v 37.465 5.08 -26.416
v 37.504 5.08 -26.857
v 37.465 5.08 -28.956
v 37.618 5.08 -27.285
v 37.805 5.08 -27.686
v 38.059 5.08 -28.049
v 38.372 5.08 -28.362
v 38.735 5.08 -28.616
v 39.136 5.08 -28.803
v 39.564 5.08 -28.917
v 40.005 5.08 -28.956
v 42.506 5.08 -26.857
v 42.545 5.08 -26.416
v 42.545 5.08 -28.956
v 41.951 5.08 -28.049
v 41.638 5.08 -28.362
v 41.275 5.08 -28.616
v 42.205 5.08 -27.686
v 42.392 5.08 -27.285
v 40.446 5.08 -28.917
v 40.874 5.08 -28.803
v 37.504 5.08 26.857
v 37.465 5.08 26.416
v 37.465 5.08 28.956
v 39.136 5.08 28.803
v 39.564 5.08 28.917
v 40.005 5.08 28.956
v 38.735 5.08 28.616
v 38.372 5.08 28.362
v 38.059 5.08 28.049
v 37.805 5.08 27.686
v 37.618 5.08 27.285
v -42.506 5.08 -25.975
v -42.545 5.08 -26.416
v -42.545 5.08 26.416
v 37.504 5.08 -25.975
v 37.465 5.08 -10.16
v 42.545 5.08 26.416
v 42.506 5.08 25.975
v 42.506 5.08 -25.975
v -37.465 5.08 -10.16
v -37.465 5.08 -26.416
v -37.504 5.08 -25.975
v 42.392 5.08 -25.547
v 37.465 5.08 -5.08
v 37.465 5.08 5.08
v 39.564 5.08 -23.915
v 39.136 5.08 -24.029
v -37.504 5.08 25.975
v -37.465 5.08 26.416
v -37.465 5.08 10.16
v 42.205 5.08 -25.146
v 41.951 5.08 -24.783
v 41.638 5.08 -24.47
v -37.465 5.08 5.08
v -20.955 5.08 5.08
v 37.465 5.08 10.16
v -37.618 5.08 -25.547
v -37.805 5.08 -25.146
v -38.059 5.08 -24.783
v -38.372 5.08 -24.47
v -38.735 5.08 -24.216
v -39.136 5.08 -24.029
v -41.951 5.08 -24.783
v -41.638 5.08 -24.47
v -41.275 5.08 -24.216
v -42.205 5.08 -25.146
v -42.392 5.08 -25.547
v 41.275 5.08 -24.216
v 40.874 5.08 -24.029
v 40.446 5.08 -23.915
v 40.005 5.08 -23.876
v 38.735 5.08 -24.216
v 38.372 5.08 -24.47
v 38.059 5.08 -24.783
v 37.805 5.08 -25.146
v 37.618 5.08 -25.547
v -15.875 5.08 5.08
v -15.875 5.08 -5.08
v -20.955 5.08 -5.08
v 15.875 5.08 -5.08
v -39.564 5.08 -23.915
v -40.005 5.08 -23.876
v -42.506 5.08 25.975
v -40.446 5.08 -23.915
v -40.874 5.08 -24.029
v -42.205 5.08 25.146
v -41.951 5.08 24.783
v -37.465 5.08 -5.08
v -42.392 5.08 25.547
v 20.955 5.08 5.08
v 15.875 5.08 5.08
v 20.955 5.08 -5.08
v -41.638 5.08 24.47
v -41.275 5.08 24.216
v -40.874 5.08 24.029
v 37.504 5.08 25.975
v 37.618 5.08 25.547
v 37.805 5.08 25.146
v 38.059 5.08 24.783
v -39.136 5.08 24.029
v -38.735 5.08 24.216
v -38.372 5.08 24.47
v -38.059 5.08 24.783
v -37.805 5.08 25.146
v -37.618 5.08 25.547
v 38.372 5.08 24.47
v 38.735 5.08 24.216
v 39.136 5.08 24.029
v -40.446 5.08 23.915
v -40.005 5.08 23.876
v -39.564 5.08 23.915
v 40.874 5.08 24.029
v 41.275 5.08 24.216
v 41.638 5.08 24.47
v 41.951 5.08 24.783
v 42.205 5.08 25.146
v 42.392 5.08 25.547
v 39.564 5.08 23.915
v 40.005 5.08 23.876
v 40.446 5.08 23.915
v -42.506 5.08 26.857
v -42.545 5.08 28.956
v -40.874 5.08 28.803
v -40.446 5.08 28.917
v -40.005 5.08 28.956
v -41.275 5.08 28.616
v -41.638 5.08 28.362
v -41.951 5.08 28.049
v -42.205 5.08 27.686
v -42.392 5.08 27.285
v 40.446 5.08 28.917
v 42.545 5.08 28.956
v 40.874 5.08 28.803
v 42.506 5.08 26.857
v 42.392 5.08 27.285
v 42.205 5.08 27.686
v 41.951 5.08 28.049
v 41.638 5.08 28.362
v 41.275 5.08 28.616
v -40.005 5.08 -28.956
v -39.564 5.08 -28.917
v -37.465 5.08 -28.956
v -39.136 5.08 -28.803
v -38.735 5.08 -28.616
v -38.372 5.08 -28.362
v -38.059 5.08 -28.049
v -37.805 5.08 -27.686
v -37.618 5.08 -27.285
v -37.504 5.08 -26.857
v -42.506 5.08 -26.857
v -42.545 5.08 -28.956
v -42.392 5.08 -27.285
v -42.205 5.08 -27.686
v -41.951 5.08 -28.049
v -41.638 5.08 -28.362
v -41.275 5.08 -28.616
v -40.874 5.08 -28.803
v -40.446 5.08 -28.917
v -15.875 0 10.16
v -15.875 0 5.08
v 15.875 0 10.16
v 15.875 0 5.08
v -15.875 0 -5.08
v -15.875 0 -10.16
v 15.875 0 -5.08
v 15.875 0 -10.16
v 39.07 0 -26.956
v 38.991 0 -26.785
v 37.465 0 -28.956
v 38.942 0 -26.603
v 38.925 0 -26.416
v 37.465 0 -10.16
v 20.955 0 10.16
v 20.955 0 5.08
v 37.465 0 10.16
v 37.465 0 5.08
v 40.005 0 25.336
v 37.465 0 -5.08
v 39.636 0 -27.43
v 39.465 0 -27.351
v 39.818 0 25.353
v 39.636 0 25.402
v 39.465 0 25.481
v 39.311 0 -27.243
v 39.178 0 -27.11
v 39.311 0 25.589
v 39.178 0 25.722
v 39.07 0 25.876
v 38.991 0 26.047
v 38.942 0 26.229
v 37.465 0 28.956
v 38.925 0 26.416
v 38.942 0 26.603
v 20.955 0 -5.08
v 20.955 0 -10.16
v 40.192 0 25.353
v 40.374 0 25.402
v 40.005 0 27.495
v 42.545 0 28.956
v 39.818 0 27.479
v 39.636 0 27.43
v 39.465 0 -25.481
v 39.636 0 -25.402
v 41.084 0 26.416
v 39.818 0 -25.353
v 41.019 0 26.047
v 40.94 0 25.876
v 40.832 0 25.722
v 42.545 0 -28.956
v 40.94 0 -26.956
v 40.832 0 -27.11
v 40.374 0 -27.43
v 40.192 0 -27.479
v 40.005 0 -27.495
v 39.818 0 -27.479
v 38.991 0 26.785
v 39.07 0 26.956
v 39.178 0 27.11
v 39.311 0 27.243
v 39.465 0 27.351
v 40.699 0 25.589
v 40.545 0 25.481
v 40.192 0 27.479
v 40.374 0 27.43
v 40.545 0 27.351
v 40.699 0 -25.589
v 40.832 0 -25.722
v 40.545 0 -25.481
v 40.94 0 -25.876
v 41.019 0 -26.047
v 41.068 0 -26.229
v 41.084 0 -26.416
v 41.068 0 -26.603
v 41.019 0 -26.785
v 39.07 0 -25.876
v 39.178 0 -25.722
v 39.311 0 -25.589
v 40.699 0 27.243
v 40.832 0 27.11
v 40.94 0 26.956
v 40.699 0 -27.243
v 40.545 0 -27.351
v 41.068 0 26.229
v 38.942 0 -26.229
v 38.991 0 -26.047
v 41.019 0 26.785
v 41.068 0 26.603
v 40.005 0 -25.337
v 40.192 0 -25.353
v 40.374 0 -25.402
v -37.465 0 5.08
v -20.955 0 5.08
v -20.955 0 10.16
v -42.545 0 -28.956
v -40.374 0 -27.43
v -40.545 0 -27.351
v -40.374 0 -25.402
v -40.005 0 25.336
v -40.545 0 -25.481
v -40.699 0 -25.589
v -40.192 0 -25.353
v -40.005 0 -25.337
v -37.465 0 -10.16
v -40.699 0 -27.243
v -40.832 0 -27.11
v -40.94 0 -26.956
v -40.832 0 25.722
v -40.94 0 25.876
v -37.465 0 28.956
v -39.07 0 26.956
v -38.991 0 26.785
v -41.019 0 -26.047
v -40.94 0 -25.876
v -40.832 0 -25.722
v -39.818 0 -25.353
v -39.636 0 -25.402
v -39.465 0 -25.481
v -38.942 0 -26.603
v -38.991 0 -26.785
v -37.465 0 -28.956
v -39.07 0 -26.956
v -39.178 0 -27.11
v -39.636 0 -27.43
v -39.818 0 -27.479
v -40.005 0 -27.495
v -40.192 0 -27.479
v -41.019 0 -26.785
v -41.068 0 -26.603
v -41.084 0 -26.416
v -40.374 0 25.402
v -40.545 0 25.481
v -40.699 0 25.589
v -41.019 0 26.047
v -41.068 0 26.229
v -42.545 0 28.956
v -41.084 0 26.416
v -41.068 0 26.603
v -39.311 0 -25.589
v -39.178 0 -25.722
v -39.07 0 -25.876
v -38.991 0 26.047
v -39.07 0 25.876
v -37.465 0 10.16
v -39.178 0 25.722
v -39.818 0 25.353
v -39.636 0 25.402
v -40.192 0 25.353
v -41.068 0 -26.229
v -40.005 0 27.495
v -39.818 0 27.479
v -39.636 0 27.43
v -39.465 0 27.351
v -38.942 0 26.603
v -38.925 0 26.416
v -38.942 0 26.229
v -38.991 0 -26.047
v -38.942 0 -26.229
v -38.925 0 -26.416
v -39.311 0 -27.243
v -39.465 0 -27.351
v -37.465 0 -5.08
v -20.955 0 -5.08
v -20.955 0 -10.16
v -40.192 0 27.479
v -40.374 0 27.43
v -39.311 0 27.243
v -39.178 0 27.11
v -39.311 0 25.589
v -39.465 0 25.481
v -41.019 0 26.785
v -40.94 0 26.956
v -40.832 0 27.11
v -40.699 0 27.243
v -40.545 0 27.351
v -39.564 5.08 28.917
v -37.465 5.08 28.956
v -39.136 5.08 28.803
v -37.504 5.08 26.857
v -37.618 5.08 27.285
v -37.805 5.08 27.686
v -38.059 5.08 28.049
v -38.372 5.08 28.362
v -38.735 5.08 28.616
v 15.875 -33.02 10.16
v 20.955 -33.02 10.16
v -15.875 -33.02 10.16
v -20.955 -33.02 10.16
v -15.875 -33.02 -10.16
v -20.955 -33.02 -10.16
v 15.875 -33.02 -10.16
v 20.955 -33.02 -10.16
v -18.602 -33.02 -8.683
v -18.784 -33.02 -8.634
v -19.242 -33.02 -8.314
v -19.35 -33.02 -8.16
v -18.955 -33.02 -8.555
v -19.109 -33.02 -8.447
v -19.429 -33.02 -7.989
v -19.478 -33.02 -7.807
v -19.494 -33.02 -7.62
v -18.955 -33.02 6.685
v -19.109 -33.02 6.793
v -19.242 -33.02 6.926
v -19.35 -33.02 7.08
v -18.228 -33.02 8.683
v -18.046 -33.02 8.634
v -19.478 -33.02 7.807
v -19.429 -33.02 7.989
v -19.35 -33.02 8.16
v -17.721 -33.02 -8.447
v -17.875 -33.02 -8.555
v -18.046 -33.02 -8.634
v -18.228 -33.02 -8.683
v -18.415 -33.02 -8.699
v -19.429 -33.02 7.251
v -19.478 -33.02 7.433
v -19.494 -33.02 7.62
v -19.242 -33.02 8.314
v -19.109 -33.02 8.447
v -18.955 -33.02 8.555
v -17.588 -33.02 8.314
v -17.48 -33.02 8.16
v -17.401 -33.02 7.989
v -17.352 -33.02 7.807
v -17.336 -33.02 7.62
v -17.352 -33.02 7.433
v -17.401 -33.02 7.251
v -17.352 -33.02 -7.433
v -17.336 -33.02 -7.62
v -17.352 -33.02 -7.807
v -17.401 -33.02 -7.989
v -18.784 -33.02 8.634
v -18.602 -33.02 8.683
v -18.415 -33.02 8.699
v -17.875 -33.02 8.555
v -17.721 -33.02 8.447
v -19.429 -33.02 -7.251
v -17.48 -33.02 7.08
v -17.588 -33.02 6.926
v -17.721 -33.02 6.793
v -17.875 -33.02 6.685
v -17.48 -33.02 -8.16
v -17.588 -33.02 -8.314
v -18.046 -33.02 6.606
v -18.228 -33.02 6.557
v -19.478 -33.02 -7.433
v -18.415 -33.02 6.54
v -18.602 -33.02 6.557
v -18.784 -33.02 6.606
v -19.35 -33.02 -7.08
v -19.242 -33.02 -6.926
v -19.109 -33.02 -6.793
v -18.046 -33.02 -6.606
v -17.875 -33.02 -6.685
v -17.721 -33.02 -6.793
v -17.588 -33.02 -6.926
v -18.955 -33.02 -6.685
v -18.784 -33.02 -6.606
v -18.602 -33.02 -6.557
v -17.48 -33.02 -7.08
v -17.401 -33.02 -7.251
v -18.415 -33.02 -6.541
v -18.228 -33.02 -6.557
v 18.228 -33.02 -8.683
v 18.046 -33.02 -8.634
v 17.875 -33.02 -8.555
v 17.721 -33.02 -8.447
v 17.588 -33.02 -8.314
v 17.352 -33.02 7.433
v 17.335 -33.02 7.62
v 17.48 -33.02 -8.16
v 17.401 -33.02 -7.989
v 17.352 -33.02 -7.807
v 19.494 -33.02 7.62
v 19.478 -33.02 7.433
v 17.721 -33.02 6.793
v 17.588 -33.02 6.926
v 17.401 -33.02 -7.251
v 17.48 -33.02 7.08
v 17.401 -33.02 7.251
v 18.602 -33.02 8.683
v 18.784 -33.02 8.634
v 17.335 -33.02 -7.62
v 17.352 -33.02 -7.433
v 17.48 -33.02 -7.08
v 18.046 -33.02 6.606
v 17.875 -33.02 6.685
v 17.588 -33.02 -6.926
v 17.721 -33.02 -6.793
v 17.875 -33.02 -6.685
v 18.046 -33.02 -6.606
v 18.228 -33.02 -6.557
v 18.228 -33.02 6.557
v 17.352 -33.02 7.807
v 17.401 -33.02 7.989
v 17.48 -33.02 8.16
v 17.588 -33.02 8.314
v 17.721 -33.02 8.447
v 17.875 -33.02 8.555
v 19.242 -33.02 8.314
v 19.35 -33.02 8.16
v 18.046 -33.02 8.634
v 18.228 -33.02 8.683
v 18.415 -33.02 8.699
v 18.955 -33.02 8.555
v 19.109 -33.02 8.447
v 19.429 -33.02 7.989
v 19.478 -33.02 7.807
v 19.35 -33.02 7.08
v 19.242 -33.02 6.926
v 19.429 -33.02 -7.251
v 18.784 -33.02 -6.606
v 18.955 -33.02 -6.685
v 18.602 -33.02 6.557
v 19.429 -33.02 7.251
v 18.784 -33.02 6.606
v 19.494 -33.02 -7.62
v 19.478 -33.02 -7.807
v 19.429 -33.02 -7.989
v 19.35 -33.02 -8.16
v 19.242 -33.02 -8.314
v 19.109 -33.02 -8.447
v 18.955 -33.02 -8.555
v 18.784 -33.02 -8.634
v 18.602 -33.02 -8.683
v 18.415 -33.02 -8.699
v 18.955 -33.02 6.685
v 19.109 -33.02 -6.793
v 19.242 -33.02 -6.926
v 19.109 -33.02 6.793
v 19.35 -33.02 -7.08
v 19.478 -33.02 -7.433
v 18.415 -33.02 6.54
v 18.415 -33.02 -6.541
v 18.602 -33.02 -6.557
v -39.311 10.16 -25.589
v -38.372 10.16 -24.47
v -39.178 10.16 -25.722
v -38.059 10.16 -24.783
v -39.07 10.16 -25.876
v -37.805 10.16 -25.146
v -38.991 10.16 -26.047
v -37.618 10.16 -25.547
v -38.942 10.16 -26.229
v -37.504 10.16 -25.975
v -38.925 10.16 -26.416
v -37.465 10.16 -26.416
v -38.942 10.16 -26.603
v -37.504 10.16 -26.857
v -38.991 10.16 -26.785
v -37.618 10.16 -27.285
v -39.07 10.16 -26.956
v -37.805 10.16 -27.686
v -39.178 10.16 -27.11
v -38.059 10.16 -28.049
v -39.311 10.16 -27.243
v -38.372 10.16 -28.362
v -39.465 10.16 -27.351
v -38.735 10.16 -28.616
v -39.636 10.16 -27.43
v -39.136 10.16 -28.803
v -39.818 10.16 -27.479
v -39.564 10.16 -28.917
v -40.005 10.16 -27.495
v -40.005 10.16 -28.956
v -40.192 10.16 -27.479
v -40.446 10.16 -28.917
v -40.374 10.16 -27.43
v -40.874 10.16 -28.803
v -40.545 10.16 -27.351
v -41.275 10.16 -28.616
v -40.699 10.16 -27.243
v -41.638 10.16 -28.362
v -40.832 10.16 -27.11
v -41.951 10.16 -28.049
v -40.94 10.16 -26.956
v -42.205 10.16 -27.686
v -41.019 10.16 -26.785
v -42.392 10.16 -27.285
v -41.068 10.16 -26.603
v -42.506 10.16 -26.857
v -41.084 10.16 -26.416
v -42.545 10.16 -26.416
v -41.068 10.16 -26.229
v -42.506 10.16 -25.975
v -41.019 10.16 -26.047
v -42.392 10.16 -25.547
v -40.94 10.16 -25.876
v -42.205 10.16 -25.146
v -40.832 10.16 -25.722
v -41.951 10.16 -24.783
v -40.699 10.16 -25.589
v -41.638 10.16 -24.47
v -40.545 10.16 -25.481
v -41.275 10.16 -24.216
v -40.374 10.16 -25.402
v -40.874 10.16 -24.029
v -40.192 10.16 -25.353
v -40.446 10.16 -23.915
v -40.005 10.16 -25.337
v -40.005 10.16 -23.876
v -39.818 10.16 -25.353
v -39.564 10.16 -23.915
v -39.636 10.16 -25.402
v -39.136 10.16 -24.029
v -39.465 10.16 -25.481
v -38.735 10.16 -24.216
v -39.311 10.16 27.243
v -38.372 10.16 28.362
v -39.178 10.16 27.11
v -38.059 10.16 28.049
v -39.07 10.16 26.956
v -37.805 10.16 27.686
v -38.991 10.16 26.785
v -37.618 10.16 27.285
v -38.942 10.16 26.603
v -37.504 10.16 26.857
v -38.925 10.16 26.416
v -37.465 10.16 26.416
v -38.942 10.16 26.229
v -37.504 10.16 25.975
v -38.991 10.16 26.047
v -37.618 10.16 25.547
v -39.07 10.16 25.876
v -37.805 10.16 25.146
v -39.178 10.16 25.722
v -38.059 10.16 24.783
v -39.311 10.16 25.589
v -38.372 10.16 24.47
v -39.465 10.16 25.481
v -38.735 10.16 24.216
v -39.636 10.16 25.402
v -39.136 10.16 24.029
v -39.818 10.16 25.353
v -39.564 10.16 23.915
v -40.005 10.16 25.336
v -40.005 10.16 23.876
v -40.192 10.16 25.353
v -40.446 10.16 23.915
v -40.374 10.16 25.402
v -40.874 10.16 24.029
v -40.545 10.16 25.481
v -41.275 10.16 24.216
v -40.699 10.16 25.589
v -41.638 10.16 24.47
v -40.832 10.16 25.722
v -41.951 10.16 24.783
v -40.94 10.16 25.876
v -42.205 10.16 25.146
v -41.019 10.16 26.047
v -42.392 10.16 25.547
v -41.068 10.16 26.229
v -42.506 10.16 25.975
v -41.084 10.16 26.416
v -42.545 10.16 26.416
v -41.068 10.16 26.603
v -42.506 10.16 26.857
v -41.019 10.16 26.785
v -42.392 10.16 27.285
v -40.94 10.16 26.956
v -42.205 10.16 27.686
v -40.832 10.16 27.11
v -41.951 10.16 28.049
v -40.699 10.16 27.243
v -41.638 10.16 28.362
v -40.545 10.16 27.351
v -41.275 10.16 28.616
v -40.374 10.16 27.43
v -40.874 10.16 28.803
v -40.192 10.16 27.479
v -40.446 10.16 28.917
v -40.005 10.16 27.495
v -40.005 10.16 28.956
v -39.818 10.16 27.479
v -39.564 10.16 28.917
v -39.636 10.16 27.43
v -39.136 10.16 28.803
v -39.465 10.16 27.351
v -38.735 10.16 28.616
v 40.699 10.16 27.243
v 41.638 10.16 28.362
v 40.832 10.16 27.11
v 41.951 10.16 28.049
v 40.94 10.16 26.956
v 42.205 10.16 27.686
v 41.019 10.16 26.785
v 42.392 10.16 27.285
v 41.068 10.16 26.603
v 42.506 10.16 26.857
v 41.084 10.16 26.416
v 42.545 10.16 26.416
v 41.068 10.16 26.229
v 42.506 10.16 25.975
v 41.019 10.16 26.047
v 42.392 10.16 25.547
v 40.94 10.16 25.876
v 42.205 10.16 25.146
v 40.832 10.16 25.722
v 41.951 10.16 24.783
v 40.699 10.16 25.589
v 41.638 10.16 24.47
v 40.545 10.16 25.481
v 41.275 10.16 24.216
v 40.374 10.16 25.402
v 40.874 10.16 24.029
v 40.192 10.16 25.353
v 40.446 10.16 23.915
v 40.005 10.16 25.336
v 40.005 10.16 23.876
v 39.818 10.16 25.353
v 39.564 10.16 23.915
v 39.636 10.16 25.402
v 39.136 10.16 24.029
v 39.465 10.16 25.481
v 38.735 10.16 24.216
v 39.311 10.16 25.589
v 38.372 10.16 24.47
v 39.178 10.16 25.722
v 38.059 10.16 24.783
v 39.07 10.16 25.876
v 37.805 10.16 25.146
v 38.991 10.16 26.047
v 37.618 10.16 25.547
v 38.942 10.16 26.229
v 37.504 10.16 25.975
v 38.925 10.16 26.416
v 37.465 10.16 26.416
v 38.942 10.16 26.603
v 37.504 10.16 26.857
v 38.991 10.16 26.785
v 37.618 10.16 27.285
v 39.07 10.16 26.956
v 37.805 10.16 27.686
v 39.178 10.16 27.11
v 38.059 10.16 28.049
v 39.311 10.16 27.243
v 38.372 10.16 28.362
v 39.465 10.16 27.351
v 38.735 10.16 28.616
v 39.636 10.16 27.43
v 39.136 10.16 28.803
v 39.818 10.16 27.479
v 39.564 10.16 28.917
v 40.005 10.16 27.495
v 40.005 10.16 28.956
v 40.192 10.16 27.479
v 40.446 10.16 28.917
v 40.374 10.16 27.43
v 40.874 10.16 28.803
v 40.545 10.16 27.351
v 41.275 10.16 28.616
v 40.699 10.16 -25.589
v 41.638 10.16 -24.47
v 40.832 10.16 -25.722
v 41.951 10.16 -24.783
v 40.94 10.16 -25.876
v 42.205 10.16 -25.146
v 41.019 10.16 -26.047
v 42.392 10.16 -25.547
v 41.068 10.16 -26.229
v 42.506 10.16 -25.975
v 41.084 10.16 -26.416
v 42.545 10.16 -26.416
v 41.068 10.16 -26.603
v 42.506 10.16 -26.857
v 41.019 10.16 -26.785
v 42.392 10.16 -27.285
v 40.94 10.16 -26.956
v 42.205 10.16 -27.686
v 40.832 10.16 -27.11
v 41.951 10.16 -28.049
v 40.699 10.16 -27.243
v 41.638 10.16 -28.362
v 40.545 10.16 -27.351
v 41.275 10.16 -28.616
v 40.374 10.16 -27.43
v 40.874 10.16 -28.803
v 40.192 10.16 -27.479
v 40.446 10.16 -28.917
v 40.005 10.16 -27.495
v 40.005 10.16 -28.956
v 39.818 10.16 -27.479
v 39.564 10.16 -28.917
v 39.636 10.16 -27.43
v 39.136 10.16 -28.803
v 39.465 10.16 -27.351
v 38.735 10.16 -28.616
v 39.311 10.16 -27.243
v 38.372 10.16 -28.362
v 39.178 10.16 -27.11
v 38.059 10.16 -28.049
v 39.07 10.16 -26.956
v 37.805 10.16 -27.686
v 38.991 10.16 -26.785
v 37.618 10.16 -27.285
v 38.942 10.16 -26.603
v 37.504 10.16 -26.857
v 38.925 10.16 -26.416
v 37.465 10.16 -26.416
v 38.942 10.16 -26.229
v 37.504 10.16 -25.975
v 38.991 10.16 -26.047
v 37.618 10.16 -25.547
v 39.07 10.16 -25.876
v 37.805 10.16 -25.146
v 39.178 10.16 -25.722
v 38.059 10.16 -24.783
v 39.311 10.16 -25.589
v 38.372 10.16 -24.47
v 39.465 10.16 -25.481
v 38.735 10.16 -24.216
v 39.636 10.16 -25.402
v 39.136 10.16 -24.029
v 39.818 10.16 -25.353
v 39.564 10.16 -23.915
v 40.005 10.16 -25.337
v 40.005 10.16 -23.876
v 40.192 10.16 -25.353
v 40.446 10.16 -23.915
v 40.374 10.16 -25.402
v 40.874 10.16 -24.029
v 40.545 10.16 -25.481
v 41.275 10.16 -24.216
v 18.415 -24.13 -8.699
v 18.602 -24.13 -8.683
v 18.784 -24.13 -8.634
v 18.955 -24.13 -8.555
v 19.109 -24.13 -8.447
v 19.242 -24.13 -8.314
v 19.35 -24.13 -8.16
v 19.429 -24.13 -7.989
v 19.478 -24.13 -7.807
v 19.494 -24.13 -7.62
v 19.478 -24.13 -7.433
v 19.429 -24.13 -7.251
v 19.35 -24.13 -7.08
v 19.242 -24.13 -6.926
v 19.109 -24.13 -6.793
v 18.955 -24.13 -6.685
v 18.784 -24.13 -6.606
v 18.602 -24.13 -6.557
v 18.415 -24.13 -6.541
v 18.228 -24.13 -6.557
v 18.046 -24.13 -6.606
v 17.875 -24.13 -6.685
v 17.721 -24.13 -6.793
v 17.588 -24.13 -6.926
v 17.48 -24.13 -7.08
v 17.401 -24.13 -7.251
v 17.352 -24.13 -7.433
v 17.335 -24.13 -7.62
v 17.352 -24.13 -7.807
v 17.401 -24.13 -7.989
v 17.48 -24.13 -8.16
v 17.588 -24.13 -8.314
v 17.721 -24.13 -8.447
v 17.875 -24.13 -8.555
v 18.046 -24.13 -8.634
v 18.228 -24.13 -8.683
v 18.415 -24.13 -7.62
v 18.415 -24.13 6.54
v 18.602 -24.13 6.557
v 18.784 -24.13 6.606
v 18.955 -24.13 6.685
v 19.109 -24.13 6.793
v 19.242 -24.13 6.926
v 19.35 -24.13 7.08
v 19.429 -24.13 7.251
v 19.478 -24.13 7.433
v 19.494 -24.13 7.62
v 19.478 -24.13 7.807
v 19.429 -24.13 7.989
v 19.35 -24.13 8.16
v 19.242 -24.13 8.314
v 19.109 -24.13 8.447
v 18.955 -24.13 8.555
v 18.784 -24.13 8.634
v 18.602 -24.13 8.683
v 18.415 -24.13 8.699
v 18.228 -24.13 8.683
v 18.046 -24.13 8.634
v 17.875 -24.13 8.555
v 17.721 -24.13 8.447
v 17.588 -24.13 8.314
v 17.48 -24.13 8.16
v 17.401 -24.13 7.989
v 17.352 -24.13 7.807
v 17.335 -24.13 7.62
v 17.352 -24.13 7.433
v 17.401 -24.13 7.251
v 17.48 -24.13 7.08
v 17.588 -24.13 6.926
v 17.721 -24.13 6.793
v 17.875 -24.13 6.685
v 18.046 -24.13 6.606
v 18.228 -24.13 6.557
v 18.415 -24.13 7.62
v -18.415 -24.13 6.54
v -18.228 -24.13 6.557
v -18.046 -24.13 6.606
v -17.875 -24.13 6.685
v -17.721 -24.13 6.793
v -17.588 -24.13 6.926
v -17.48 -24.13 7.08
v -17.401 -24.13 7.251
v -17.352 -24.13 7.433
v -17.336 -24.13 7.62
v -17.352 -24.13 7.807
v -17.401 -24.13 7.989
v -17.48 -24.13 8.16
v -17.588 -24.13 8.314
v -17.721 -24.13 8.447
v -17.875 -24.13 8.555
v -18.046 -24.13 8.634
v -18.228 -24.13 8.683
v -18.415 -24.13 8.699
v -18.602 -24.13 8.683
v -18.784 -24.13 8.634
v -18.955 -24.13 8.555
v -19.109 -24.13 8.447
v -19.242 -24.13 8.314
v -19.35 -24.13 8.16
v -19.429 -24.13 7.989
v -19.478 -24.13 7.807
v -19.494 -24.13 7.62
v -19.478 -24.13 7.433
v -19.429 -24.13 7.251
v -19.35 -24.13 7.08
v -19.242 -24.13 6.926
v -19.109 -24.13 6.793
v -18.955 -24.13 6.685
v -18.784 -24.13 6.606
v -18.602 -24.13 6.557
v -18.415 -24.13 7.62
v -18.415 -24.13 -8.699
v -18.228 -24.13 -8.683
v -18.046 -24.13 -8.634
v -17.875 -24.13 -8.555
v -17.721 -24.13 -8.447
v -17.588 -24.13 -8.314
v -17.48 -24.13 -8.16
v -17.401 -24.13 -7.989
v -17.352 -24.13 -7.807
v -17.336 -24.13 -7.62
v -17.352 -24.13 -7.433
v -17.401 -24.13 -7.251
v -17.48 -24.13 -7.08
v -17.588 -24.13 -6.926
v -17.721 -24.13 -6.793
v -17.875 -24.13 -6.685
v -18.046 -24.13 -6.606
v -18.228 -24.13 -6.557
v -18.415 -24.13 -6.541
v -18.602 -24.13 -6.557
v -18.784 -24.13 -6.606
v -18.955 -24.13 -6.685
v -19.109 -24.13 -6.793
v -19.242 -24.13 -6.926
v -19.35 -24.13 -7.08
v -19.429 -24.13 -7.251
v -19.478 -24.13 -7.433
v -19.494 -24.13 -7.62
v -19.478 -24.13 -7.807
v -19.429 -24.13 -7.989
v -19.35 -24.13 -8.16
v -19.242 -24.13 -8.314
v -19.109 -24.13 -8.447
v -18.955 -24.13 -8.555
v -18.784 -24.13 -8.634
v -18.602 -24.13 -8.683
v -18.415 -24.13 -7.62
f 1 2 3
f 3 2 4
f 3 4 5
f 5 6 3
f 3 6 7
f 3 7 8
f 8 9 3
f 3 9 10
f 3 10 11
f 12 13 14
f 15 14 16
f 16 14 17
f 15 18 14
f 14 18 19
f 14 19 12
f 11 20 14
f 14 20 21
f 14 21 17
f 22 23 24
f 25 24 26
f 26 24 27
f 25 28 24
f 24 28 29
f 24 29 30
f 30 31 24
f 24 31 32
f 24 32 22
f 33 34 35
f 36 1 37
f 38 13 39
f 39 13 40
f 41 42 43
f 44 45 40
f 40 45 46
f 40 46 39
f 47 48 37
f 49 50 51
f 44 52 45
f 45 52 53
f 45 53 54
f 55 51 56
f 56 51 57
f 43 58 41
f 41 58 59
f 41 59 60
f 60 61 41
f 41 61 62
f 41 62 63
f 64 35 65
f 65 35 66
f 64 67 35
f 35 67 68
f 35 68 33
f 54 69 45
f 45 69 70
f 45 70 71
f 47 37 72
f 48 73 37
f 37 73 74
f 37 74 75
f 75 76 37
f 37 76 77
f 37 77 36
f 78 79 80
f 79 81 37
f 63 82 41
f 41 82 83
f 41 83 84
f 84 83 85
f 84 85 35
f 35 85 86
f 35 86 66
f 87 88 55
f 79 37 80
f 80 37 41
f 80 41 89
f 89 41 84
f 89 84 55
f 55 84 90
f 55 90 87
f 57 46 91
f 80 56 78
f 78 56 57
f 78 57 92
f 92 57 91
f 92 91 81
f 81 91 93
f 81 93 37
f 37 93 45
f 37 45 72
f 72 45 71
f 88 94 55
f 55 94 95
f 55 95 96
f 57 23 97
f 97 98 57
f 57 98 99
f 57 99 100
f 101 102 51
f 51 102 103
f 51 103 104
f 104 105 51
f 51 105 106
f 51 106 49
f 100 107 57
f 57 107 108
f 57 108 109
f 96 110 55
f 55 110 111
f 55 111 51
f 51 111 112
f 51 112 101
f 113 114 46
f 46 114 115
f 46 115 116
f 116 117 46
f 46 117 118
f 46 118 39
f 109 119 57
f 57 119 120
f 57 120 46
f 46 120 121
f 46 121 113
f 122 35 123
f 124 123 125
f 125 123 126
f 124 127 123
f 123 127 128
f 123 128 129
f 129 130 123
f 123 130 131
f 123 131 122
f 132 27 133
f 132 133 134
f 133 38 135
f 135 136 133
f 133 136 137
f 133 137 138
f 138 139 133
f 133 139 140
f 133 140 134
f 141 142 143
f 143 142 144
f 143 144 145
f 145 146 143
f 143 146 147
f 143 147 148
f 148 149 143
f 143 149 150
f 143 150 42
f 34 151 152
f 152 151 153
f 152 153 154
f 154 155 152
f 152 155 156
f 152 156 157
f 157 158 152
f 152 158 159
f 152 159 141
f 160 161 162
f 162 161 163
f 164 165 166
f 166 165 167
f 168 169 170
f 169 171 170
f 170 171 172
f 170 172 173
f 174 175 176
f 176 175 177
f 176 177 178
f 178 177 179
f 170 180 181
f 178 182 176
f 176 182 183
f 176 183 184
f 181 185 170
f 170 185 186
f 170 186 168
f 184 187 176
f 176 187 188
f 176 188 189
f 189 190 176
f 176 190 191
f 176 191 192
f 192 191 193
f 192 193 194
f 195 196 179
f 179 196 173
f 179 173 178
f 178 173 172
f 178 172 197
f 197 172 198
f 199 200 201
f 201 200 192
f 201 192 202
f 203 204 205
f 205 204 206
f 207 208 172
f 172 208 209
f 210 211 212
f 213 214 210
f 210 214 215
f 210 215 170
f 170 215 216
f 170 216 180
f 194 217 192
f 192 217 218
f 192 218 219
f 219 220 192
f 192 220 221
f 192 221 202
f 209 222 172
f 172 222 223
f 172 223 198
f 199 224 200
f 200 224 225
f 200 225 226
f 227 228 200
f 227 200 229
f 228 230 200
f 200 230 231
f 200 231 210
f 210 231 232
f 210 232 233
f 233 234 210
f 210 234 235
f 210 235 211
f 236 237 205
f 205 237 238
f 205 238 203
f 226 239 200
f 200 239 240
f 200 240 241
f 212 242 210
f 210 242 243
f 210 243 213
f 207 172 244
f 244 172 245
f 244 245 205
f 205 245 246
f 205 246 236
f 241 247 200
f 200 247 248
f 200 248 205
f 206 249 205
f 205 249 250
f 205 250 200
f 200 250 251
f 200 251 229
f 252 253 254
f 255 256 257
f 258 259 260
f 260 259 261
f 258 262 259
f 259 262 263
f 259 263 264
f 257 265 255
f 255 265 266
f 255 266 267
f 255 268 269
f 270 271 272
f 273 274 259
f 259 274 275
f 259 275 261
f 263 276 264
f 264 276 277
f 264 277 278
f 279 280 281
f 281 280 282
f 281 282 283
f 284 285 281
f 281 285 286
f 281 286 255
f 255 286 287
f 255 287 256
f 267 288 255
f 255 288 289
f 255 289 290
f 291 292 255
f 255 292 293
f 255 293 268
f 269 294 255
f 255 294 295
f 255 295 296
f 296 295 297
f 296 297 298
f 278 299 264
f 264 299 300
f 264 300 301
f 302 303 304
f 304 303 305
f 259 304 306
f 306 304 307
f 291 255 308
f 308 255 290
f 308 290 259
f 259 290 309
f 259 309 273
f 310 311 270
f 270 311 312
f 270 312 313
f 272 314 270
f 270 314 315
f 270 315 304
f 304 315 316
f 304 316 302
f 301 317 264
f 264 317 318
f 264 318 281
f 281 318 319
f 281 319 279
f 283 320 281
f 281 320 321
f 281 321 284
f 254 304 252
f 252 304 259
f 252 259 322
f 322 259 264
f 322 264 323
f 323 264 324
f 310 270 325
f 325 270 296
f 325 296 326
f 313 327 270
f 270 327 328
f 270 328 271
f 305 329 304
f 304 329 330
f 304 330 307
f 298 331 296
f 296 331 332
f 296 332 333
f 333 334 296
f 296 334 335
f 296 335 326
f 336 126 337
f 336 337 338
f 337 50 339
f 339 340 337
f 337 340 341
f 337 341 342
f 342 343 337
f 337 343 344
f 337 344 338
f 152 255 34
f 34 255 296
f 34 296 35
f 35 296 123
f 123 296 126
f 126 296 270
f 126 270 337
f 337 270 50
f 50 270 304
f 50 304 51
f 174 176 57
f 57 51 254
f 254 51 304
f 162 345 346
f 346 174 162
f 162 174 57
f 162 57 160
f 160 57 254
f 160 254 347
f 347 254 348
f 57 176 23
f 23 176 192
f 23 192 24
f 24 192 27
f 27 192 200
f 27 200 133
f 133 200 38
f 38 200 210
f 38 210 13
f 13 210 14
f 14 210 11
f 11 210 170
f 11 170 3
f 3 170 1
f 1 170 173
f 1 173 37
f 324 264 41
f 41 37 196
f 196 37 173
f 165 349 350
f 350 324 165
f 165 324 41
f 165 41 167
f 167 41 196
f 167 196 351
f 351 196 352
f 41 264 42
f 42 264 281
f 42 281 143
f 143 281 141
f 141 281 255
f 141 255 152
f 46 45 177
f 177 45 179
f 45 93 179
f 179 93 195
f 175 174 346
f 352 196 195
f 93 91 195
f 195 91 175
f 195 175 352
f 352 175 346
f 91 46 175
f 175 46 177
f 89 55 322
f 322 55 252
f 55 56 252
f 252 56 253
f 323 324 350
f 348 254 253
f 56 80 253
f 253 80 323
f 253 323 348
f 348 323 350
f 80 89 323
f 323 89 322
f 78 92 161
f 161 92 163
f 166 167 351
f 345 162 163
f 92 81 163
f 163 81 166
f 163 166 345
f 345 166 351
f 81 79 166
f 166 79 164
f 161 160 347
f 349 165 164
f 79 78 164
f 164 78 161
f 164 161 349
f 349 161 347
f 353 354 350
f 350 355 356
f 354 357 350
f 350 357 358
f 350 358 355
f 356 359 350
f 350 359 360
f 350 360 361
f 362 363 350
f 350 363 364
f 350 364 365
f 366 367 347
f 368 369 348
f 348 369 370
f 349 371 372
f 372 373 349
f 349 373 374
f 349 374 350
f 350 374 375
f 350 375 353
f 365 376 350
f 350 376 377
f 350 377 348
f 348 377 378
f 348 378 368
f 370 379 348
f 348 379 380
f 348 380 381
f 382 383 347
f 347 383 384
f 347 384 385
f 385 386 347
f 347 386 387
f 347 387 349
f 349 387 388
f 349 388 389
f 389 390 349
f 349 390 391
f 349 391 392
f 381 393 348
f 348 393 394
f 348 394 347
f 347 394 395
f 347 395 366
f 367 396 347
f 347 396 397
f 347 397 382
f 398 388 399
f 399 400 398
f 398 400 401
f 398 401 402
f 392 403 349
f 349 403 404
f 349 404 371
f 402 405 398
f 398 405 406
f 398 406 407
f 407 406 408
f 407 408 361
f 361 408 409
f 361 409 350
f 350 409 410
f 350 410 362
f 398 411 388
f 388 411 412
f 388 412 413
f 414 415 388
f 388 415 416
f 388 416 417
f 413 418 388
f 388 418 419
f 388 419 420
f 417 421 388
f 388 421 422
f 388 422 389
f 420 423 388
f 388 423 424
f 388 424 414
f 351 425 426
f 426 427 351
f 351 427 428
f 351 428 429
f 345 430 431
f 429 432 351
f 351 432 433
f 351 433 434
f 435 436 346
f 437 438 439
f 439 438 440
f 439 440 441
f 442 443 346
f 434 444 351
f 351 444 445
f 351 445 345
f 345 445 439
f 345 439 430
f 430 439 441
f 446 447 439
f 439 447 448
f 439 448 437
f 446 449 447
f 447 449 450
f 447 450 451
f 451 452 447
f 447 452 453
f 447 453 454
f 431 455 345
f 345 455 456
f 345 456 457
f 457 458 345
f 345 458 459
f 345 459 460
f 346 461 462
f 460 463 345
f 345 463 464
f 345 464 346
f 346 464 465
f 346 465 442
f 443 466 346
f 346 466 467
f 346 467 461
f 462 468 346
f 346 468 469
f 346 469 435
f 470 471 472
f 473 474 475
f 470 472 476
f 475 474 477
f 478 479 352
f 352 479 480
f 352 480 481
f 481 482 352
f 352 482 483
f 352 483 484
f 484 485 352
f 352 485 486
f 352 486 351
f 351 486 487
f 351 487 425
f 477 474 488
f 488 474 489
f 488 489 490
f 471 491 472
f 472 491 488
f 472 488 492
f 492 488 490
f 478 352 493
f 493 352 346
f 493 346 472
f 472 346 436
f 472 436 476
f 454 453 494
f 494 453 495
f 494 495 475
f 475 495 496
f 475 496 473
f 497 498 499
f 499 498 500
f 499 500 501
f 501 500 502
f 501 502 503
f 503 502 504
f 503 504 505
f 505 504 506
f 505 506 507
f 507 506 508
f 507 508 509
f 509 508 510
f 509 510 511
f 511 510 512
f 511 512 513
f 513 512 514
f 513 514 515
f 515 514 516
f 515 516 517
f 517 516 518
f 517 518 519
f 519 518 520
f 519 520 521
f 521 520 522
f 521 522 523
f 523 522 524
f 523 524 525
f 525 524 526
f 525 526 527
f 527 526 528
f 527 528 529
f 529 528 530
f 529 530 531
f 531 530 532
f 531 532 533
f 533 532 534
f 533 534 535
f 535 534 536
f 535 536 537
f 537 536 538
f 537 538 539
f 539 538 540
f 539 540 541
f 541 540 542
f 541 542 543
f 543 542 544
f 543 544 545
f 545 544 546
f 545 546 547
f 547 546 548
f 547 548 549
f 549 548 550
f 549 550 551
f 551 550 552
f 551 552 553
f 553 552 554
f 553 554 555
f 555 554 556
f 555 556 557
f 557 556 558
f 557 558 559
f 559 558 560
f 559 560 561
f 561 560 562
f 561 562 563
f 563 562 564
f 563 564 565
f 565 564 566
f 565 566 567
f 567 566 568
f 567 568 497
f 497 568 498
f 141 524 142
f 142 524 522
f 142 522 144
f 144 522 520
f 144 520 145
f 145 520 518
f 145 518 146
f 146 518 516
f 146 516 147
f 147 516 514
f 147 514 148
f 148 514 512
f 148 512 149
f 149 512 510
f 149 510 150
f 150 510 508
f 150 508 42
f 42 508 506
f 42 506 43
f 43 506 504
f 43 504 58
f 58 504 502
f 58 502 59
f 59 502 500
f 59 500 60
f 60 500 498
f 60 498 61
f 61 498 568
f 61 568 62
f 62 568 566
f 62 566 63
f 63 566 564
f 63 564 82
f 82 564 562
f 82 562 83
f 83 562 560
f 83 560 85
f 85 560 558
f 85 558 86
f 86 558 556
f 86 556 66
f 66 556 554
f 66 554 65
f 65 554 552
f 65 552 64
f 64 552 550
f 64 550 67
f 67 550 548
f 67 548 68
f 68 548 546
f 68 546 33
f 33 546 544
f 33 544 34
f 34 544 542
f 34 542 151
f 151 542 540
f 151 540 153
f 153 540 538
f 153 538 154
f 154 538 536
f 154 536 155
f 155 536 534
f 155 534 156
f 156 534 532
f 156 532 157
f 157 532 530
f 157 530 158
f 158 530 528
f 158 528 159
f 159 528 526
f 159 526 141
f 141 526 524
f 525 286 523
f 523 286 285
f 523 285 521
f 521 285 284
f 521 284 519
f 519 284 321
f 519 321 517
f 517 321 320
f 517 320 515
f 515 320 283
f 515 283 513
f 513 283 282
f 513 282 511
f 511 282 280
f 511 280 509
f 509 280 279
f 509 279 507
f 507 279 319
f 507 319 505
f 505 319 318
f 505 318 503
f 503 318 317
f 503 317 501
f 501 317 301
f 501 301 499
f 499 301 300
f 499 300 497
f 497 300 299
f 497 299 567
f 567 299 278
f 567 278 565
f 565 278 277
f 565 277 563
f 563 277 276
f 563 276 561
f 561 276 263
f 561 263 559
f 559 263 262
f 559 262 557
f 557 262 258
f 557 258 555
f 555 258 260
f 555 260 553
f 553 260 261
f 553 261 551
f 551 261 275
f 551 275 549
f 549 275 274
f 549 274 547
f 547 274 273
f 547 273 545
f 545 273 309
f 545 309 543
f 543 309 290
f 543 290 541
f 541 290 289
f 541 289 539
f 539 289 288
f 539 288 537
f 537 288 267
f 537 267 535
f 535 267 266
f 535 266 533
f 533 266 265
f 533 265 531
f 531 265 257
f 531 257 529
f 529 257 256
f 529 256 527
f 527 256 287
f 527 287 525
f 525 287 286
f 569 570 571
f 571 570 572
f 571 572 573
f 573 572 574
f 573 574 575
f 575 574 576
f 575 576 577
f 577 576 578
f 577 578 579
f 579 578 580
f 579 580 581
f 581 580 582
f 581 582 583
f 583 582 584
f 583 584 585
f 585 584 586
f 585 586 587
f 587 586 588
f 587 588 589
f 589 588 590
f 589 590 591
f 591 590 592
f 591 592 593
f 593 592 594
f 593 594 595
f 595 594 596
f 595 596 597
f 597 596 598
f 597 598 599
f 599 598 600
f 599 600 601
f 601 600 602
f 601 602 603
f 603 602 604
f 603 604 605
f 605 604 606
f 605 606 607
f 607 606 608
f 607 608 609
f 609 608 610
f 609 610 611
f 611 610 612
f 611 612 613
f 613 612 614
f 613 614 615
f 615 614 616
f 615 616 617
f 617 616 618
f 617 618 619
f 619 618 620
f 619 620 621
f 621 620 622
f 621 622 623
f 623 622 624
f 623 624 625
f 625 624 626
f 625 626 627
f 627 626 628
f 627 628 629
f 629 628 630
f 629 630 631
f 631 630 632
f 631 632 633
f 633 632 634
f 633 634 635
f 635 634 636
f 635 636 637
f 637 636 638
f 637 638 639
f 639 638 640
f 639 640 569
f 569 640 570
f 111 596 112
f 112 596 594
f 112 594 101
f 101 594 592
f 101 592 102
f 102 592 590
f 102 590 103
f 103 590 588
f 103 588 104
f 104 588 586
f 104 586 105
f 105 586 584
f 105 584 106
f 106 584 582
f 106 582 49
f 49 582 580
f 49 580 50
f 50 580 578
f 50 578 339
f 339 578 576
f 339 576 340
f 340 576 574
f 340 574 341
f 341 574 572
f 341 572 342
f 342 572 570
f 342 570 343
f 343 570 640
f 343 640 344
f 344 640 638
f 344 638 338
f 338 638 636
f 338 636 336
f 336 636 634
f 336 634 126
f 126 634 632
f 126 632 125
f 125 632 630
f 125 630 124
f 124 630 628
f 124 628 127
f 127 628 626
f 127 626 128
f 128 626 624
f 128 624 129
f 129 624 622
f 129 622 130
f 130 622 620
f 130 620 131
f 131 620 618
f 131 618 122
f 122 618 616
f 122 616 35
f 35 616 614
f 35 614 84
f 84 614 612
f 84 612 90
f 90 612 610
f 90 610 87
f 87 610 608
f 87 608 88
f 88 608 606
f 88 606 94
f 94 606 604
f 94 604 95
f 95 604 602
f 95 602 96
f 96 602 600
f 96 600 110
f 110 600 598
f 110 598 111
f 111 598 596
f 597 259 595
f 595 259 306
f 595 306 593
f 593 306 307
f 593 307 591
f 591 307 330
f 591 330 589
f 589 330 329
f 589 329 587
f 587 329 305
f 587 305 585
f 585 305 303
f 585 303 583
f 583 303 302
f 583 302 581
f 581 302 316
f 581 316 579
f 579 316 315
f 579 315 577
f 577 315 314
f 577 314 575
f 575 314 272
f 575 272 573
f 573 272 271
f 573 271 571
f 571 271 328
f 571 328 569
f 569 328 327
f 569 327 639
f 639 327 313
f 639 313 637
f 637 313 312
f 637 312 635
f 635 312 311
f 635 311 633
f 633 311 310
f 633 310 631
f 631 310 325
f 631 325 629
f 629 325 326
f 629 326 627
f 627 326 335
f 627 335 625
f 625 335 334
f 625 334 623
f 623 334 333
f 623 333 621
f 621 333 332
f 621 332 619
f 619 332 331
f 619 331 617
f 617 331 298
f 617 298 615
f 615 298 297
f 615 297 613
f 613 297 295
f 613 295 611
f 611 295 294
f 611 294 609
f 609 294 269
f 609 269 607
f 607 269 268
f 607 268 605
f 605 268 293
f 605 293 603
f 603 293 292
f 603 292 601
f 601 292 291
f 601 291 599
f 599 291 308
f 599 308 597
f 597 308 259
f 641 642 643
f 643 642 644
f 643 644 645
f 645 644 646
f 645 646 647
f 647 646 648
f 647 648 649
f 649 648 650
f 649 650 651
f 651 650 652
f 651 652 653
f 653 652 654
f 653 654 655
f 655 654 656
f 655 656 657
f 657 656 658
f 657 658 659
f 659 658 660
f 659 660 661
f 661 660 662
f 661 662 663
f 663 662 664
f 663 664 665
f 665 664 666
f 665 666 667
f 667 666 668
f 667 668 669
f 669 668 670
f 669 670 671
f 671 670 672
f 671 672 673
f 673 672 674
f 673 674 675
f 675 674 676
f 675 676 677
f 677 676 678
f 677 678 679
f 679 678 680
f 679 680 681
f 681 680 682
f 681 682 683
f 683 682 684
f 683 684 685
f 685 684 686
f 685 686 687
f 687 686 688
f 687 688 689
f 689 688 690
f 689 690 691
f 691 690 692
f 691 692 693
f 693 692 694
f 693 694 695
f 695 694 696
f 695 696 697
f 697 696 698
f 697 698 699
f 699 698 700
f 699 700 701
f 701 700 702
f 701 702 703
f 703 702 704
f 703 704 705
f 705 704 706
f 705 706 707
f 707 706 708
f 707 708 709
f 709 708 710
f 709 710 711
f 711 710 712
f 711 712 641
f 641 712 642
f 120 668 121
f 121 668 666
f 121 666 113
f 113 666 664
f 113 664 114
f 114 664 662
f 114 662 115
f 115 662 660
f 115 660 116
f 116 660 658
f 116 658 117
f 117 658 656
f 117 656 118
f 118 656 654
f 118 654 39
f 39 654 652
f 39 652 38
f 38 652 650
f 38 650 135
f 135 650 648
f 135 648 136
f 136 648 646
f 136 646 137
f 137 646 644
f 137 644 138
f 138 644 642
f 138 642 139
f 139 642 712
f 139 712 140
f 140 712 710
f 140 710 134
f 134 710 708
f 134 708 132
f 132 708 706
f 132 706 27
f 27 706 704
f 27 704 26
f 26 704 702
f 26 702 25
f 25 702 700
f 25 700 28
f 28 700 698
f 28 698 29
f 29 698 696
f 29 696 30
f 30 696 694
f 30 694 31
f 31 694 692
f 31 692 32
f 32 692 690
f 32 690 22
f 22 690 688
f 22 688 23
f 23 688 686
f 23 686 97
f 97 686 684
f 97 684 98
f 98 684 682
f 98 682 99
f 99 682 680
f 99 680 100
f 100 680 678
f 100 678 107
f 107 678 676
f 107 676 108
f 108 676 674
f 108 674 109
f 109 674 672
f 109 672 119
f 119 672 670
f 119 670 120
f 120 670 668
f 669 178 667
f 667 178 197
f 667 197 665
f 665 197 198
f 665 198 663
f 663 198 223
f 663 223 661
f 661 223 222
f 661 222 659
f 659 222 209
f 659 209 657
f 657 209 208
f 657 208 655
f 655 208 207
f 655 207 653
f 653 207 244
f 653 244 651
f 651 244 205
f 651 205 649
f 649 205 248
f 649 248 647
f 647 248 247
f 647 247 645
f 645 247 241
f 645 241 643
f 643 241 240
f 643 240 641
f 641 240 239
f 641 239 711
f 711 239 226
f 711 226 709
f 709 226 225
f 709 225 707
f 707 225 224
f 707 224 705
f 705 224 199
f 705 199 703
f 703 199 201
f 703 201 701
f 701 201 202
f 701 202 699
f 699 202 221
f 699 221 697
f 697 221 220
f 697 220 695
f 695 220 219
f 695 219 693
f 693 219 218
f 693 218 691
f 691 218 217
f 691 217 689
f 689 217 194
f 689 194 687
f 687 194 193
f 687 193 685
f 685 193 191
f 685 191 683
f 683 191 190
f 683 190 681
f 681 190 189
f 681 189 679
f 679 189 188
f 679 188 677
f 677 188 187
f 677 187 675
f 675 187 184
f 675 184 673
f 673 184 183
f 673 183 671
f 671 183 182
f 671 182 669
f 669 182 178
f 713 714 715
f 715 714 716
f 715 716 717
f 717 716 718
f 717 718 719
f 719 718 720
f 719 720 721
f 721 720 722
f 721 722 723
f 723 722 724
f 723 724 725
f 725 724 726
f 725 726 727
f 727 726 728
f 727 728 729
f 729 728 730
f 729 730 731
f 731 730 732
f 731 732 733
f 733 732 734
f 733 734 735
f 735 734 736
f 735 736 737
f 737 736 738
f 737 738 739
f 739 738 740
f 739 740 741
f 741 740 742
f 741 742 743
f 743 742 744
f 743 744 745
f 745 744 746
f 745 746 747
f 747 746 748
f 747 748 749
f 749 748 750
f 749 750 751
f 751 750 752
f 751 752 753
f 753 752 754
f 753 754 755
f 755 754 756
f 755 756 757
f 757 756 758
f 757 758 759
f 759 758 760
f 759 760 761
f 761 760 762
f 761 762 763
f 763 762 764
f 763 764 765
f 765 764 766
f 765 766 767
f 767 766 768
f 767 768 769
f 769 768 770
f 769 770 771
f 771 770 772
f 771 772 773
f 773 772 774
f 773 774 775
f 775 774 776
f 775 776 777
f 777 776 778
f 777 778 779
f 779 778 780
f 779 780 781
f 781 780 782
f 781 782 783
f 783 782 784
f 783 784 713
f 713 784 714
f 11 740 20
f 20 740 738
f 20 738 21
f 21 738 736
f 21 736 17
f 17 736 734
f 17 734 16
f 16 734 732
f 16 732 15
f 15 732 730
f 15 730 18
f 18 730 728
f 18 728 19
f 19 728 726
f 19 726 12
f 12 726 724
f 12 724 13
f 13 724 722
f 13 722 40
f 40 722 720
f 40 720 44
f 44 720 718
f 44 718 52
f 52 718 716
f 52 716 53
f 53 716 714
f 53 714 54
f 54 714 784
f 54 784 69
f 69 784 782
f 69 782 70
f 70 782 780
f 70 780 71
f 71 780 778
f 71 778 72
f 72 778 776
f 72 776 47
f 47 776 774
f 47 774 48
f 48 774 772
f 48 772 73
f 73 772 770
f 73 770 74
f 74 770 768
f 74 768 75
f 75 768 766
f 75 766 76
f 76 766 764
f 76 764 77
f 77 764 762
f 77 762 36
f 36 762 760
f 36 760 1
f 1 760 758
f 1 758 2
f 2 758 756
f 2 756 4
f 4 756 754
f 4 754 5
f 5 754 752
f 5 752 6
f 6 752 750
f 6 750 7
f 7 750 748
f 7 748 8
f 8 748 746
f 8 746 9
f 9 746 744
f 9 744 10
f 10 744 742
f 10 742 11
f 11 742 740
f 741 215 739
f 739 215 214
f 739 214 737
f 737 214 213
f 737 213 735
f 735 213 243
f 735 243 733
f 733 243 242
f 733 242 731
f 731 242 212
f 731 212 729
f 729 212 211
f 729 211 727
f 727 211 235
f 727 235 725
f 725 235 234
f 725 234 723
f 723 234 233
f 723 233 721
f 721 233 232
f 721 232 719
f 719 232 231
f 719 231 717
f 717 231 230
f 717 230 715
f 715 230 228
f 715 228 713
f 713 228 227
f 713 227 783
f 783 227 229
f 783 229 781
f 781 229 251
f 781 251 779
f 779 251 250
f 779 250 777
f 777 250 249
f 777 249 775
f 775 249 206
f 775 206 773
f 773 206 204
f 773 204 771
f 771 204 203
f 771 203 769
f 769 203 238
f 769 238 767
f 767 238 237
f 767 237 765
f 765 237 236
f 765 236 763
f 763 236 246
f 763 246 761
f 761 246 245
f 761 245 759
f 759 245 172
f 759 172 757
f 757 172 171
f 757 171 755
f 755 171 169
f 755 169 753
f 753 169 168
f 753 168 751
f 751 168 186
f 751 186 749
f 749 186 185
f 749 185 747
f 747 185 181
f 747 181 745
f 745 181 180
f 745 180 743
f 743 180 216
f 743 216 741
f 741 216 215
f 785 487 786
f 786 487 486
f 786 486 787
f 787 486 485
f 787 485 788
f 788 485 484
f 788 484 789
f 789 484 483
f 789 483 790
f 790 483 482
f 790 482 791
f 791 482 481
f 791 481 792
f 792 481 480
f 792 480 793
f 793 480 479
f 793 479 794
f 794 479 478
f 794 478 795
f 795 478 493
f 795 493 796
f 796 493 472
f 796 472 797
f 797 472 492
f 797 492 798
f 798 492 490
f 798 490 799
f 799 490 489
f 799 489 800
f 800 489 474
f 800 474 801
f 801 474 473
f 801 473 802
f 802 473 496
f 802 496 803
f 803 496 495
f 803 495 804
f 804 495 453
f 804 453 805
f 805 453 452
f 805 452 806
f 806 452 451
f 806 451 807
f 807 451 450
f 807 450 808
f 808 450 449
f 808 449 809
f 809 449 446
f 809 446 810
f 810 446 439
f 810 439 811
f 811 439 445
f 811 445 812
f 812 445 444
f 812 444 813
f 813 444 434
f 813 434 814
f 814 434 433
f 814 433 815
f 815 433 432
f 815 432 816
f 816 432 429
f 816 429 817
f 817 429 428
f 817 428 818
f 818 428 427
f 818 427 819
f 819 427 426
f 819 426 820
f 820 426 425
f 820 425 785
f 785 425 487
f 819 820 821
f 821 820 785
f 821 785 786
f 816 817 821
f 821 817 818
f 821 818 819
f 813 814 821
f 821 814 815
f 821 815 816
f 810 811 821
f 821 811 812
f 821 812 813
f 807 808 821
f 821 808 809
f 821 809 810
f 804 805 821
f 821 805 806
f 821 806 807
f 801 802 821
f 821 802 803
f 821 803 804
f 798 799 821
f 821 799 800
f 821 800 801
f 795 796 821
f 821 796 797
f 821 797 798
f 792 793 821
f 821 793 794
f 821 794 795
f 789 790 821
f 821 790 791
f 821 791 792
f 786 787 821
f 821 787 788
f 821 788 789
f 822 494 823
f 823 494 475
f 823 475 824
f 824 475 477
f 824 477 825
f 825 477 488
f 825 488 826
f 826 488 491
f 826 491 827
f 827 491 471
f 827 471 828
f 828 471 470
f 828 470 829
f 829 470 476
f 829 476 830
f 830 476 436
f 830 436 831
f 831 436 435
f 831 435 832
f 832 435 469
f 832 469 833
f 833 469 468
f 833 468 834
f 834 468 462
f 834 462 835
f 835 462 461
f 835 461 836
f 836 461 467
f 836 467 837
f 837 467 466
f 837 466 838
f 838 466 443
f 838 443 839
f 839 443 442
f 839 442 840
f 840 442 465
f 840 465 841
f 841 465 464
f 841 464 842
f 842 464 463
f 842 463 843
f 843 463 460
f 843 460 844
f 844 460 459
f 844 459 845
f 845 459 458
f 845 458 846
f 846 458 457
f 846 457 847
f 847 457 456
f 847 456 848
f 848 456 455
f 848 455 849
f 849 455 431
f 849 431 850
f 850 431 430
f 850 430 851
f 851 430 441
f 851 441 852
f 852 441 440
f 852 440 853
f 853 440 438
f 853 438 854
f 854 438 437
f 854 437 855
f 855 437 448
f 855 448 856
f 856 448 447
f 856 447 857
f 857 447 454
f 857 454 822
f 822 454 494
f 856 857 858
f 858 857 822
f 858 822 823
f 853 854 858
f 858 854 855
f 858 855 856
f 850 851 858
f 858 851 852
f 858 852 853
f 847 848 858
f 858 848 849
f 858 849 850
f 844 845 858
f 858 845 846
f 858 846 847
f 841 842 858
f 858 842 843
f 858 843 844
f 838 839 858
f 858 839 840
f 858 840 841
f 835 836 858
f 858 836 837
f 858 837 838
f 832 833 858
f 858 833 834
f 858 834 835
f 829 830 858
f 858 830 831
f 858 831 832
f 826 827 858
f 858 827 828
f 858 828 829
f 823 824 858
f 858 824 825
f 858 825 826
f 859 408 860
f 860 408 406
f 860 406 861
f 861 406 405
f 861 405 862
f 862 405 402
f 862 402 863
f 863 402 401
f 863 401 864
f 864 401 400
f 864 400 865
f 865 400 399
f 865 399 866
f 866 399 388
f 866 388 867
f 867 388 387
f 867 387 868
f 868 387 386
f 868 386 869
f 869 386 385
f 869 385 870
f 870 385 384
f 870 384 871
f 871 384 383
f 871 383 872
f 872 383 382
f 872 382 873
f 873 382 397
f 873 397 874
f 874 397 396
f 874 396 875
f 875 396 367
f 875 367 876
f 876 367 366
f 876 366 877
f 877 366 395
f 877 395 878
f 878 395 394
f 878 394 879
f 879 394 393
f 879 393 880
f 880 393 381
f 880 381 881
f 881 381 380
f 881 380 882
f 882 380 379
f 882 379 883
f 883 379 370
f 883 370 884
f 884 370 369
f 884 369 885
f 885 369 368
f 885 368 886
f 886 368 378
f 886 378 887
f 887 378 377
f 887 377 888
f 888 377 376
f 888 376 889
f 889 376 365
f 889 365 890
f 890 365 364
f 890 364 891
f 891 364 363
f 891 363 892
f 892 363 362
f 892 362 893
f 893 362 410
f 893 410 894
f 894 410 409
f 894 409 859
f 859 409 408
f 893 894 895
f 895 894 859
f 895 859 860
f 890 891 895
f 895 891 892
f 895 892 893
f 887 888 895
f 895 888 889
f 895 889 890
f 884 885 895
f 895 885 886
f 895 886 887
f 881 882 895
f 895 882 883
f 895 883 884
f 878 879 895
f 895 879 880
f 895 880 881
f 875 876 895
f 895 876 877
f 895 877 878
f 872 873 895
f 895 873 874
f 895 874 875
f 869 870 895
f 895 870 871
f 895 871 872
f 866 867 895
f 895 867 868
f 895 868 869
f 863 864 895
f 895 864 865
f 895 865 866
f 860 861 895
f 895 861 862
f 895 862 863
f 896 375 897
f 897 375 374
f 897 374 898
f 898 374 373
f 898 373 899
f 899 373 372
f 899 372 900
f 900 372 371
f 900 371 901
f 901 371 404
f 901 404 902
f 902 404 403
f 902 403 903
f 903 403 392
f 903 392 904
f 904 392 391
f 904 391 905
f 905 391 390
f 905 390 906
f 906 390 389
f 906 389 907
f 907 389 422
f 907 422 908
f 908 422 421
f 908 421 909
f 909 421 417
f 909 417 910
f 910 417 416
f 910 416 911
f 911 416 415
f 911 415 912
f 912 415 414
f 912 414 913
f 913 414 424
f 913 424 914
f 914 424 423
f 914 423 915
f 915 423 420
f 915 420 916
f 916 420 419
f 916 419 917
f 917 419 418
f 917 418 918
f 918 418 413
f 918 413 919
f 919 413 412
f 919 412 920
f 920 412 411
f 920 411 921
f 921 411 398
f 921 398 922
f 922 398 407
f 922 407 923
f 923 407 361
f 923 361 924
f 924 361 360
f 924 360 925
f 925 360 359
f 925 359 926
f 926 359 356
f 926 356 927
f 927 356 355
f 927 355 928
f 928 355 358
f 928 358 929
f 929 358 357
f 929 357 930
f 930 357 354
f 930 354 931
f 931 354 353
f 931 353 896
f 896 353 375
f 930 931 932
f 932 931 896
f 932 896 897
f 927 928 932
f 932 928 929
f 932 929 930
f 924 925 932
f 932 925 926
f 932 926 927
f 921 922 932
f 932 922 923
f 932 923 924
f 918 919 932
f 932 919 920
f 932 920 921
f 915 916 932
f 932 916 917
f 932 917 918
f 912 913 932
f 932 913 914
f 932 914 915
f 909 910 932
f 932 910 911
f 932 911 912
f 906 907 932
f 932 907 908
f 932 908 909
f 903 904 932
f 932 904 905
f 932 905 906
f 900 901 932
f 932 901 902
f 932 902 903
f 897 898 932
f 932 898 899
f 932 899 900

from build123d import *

# Parameters (mm, degrees)
SKETCH1_W           = 16.51
SKETCH1_H           = 10.16
SKETCH1_W_2         = 31.75
BOSS_EXTRUDE1_DEPTH = 5.08
SKETCH2_W           = 5.08
SKETCH2_H           = 20.32
BOSS_EXTRUDE2_DEPTH = 33.02
SKETCH4_R           = 2.54
SKETCH4_R_2         = 1.0795
BOSS_EXTRUDE3_DEPTH = 5.08
SKETCH5_R           = 1.0795
CUT_EXTRUDE1_DEPTH  = 39.1
SKETCH6_R           = 1.0795
CUT_EXTRUDE2_DEPTH  = 8.89


with BuildPart() as part:
    # Sketch1 → Boss-Extrude1 (new body)
    with BuildSketch(Plane(origin=(0, 0, 0), x_dir=(1, 0, 0), z_dir=(0, 1, 0))):
        Polygon((-42.545, 28.956), (-37.465, 28.956), (-37.465, 10.16), (37.465, 10.16), (37.465, 28.956), (42.545, 28.956), (42.545, -28.956), (37.465, -28.956), (37.465, -10.16), (-37.465, -10.16), (-37.465, -28.956), (-42.545, -28.956), align=None)
        with Locations((29.21, 0)):
            Rectangle(SKETCH1_W, SKETCH1_H, mode=Mode.SUBTRACT)
        with Locations((-29.21, 0)):
            Rectangle(SKETCH1_W, SKETCH1_H, mode=Mode.SUBTRACT)
        Rectangle(SKETCH1_W_2, SKETCH1_H, mode=Mode.SUBTRACT)
    extrude(amount=BOSS_EXTRUDE1_DEPTH)

    # Sketch2 → Boss-Extrude2 (add)
    with BuildSketch(Plane.XZ):
        with Locations((-18.415, 0)):
            Rectangle(SKETCH2_W, SKETCH2_H)
        with Locations((18.415, 0)):
            Rectangle(SKETCH2_W, SKETCH2_H)
    extrude(amount=BOSS_EXTRUDE2_DEPTH)

    # Sketch4 → Boss-Extrude3 (add)
    with BuildSketch(Plane(origin=(0, 5.08, 0), x_dir=(1, 0, 0), z_dir=(0, 1, 0))):
        with Locations((-40.005, 26.416)):
            Circle(SKETCH4_R)
        with Locations((-40.005, 26.416)):
            Circle(SKETCH4_R_2, mode=Mode.SUBTRACT)
        with Locations((-40.005, -26.416)):
            Circle(SKETCH4_R)
        with Locations((-40.005, -26.416)):
            Circle(SKETCH4_R_2, mode=Mode.SUBTRACT)
        with Locations((40.005, -26.416)):
            Circle(SKETCH4_R)
        with Locations((40.005, -26.416)):
            Circle(SKETCH4_R_2, mode=Mode.SUBTRACT)
        with Locations((40.005, 26.416)):
            Circle(SKETCH4_R)
        with Locations((40.005, 26.416)):
            Circle(SKETCH4_R_2, mode=Mode.SUBTRACT)
    extrude(amount=BOSS_EXTRUDE3_DEPTH)

    # Sketch5 → Cut-Extrude1 (cut, through all)
    with BuildSketch(Plane(origin=(0, 5.08, 0), x_dir=(1, 0, 0), z_dir=(0, 1, 0))):
        with Locations((-40.005, -26.416)):
            Circle(SKETCH5_R)
        with Locations((-40.005, 26.416)):
            Circle(SKETCH5_R)
        with Locations((40.005, 26.416)):
            Circle(SKETCH5_R)
        with Locations((40.005, -26.416)):
            Circle(SKETCH5_R)
    extrude(amount=-CUT_EXTRUDE1_DEPTH, mode=Mode.SUBTRACT)

    # Sketch6 → Cut-Extrude2 (cut)
    with BuildSketch(Plane.XZ.offset(33.02)):
        with Locations((-18.415, 7.62)):
            Circle(SKETCH6_R)
        with Locations((-18.415, -7.62)):
            Circle(SKETCH6_R)
        with Locations((18.415, 7.62)):
            Circle(SKETCH6_R)
        with Locations((18.415, -7.62)):
            Circle(SKETCH6_R)
    extrude(amount=-CUT_EXTRUDE2_DEPTH, mode=Mode.SUBTRACT)


solid = part.part
